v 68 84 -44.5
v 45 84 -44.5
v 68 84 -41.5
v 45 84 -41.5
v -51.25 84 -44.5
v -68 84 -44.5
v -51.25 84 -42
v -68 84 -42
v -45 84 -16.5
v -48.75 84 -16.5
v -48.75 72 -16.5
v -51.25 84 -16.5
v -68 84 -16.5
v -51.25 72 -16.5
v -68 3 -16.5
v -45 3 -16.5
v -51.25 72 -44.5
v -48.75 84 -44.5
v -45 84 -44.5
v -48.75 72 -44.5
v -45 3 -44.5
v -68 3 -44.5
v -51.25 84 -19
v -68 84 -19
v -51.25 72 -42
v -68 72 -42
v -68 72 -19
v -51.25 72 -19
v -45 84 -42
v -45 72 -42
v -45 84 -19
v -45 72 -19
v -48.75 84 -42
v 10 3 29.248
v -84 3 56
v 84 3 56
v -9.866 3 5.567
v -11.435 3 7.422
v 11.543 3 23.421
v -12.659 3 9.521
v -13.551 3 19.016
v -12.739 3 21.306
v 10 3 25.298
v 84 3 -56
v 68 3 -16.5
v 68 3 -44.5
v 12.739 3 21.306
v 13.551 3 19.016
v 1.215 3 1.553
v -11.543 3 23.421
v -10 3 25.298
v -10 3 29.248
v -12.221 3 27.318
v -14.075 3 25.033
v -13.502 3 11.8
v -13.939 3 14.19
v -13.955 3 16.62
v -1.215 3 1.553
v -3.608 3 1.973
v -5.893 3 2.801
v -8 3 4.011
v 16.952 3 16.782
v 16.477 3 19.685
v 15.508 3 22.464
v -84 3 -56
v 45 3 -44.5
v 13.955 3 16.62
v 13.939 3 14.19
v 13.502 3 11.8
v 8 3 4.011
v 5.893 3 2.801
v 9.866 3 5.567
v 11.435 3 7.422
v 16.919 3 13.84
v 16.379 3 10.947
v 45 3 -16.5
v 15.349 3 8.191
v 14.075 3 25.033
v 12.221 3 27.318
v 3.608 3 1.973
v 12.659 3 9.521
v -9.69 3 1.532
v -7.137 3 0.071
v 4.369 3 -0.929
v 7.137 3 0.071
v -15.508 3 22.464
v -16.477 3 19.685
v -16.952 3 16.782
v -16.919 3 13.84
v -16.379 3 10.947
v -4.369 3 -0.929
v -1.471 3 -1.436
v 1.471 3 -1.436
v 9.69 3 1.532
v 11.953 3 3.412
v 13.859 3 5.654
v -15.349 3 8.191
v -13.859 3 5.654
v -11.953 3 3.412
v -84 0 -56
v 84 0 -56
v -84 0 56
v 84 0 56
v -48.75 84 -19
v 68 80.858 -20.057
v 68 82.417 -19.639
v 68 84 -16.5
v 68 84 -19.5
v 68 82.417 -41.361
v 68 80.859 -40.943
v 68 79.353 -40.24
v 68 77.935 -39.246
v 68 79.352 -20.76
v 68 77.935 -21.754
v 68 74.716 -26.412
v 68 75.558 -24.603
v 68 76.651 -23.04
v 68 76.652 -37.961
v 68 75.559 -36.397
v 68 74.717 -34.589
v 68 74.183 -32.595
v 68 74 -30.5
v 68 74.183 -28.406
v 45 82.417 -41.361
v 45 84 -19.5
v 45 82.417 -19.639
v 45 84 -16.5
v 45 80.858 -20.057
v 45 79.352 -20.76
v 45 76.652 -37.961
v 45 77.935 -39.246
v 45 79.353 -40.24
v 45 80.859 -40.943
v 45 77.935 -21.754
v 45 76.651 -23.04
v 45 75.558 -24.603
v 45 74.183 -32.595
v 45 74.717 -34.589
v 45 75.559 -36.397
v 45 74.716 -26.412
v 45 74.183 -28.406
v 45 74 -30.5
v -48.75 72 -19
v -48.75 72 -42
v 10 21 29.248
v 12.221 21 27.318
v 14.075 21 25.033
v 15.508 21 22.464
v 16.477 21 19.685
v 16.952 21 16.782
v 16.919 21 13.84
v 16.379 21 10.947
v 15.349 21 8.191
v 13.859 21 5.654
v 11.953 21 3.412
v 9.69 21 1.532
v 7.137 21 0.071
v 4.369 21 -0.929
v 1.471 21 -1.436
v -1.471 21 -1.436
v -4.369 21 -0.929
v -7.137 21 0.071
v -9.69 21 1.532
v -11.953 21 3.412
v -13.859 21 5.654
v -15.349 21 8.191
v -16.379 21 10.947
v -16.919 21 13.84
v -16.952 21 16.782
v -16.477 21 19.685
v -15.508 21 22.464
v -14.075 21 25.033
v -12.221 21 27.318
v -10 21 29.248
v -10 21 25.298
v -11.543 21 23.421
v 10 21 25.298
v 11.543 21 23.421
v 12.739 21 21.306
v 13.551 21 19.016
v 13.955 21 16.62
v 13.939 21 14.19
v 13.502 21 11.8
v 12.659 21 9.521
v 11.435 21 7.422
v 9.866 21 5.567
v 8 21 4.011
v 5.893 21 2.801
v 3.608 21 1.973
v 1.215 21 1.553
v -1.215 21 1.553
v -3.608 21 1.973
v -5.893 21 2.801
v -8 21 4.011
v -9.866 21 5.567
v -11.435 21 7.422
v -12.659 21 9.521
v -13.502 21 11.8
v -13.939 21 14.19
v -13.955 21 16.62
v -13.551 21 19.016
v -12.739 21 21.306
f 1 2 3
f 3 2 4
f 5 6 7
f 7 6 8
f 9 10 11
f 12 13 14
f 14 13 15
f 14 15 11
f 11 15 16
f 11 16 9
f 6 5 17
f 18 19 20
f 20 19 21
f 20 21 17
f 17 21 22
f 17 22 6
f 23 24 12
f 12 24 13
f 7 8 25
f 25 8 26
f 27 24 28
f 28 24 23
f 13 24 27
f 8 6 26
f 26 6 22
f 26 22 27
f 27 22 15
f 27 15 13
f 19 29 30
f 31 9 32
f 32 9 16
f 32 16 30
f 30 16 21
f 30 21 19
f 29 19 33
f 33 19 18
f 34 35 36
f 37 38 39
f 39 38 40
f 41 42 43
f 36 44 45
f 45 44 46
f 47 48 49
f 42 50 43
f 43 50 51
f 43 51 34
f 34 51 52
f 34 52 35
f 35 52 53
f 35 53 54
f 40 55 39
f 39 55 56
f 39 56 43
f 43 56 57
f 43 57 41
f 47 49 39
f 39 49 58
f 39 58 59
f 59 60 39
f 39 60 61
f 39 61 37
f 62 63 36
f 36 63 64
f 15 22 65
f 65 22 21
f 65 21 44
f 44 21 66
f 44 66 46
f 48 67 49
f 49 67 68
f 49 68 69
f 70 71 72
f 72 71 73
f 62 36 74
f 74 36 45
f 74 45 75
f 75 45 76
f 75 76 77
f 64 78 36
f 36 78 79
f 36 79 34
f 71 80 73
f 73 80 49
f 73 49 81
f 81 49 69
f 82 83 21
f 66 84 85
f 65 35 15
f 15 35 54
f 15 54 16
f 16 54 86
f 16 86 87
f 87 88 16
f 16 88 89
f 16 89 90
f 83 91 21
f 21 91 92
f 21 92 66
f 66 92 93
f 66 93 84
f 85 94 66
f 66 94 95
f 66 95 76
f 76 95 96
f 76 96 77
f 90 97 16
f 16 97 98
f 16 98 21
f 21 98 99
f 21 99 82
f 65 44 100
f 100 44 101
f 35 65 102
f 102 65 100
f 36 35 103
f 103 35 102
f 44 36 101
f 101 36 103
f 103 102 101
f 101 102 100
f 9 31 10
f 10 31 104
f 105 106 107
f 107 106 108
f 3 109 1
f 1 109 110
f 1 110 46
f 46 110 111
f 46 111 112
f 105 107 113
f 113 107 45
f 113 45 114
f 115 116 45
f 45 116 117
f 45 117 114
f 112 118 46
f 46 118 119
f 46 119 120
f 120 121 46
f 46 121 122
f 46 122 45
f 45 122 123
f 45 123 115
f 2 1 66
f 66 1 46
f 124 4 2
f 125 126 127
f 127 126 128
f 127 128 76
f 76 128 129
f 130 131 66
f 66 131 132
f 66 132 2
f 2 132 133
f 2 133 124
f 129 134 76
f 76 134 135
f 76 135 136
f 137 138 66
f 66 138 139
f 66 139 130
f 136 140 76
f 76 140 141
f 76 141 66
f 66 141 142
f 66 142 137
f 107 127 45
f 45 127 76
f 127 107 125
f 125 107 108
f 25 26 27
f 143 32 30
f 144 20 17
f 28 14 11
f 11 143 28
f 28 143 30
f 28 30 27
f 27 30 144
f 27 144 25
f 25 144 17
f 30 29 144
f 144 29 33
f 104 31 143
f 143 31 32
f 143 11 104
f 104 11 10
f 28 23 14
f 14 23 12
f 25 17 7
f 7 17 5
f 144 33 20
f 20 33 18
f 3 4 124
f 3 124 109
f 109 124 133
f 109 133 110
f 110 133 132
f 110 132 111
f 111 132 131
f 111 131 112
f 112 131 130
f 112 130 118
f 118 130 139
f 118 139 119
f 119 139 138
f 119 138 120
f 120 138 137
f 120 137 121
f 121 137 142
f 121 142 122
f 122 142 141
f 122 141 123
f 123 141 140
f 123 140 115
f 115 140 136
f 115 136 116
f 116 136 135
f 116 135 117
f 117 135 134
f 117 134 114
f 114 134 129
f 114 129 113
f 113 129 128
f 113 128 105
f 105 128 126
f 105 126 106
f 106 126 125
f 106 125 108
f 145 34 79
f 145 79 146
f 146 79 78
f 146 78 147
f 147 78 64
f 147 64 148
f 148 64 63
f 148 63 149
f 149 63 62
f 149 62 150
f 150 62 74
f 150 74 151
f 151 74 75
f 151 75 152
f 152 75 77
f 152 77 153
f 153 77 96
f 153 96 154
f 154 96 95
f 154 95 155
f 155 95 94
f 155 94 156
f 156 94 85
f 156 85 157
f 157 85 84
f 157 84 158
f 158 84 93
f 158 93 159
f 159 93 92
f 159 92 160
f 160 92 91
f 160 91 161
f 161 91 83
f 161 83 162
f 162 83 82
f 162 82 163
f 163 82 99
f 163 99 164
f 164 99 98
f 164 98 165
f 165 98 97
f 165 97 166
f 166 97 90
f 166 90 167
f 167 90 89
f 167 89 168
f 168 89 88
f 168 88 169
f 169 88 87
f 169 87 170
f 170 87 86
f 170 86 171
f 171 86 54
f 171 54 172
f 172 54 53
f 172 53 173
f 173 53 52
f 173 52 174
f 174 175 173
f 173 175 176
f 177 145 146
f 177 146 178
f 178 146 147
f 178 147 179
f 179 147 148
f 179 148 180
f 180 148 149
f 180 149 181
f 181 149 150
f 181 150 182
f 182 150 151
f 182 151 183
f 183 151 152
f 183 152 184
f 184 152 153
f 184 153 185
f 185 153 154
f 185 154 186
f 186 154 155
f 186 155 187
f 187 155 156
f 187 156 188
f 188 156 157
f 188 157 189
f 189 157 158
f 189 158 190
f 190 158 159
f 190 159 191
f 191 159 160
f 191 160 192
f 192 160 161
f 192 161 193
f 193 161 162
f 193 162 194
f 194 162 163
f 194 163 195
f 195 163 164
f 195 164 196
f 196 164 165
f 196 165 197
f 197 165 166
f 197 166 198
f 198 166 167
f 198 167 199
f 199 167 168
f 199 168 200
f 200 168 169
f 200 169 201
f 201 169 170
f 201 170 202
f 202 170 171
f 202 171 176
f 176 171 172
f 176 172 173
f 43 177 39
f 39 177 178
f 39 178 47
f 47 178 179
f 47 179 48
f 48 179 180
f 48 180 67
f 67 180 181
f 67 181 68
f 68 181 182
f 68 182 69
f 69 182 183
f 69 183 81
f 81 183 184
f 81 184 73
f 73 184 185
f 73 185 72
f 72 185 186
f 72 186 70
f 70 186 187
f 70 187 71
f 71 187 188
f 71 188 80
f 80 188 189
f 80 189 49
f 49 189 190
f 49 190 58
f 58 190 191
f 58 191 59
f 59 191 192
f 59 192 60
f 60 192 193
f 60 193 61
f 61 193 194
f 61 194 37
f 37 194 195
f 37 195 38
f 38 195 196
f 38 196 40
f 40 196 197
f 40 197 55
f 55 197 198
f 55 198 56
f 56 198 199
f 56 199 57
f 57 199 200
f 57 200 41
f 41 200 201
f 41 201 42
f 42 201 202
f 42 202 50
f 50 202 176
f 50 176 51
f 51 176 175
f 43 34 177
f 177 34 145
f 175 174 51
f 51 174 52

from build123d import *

# Parameters (mm, degrees)
SKETCH1_W           = 168
SKETCH1_H           = 112
BOSS_EXTRUDE1_DEPTH = 3
SKETCH2_W           = 23
SKETCH2_H           = 28
BOSS_EXTRUDE2_DEPTH = 81
SKETCH11_W          = 28
SKETCH11_H          = 23
CUT_EXTRUDE4_DEPTH  = 12
SKETCH13_W          = 2.5
SKETCH13_H          = 33.689893656
CUT_EXTRUDE5_DEPTH  = 12
SKETCH17_RX         = 11
SKETCH17_RY         = 10
CUT_EXTRUDE6_DEPTH  = 40
SKETCH18_R          = 17
BOSS_EXTRUDE3_DEPTH = 18
SKETCH19_R          = 14
CUT_EXTRUDE7_DEPTH  = 18
SKETCH20_W          = 20
SKETCH20_H          = 25.807879142
CUT_EXTRUDE8_DEPTH  = 18


with BuildPart() as part:
    # Sketch1 → Boss-Extrude1 (new body)
    with BuildSketch(Plane(origin=(0, 0, 0), x_dir=(1, 0, 0), z_dir=(0, 1, 0))):
        Rectangle(SKETCH1_W, SKETCH1_H)
    extrude(amount=BOSS_EXTRUDE1_DEPTH)

    # Sketch2 → Boss-Extrude2 (add)
    with BuildSketch(Plane(origin=(0, 3, 0), x_dir=(1, 0, 0), z_dir=(0, 1, 0))):
        with Locations((-56.5, 30.5)):
            Rectangle(SKETCH2_W, SKETCH2_H)
    boss_extrude2 = extrude(amount=BOSS_EXTRUDE2_DEPTH)

    # Mirror1: Boss-Extrude2 across plane
    add(boss_extrude2.mirror(Plane(origin=(0, 0, 0), x_dir=(0, 0, 1), z_dir=(1, 0, 0))))

    # Sketch11 → Cut-Extrude4 (cut)
    with BuildSketch(Plane(origin=(0, 84, 0), x_dir=(1, 0, 0), z_dir=(0, 1, 0))):
        with Locations((-59, 30.5)):
            Rectangle(SKETCH11_W, SKETCH11_H)
    extrude(amount=-CUT_EXTRUDE4_DEPTH, mode=Mode.SUBTRACT)

    # Sketch13 → Cut-Extrude5 (cut)
    with BuildSketch(Plane(origin=(0, 72, 0), x_dir=(1, 0, 0), z_dir=(0, 1, 0))):
        with Locations((-50, 30.5)):
            Rectangle(SKETCH13_W, SKETCH13_H)
    extrude(amount=CUT_EXTRUDE5_DEPTH, mode=Mode.SUBTRACT)

    # Sketch17 → Cut-Extrude6 (cut)
    with BuildSketch(Plane.ZY.offset(-45)):
        with Locations((-30.5, 84)):
            Ellipse(SKETCH17_RX, SKETCH17_RY)
    extrude(amount=-CUT_EXTRUDE6_DEPTH, mode=Mode.SUBTRACT)

    # Sketch18 → Boss-Extrude3 (add)
    with BuildSketch(Plane(origin=(0, 3, 0), x_dir=(1, 0, 0), z_dir=(0, 1, 0))):
        with Locations(Location((0, -15.5, 0), (0, 0, 90))):
            Circle(SKETCH18_R)
    extrude(amount=BOSS_EXTRUDE3_DEPTH)

    # Sketch19 → Cut-Extrude7 (cut)
    with BuildSketch(Plane(origin=(0, 21, 0), x_dir=(1, 0, 0), z_dir=(0, 1, 0))):
        with Locations(Location((0, -15.5, 0), (0, 0, 270))):
            Circle(SKETCH19_R)
    extrude(amount=-CUT_EXTRUDE7_DEPTH, mode=Mode.SUBTRACT)

    # Sketch20 → Cut-Extrude8 (cut)
    with BuildSketch(Plane(origin=(0, 21, 0), x_dir=(1, 0, 0), z_dir=(0, 1, 0))):
        with Locations((0, -32.5)):
            Rectangle(SKETCH20_W, SKETCH20_H)
    extrude(amount=-CUT_EXTRUDE8_DEPTH, mode=Mode.SUBTRACT)


solid = part.part
